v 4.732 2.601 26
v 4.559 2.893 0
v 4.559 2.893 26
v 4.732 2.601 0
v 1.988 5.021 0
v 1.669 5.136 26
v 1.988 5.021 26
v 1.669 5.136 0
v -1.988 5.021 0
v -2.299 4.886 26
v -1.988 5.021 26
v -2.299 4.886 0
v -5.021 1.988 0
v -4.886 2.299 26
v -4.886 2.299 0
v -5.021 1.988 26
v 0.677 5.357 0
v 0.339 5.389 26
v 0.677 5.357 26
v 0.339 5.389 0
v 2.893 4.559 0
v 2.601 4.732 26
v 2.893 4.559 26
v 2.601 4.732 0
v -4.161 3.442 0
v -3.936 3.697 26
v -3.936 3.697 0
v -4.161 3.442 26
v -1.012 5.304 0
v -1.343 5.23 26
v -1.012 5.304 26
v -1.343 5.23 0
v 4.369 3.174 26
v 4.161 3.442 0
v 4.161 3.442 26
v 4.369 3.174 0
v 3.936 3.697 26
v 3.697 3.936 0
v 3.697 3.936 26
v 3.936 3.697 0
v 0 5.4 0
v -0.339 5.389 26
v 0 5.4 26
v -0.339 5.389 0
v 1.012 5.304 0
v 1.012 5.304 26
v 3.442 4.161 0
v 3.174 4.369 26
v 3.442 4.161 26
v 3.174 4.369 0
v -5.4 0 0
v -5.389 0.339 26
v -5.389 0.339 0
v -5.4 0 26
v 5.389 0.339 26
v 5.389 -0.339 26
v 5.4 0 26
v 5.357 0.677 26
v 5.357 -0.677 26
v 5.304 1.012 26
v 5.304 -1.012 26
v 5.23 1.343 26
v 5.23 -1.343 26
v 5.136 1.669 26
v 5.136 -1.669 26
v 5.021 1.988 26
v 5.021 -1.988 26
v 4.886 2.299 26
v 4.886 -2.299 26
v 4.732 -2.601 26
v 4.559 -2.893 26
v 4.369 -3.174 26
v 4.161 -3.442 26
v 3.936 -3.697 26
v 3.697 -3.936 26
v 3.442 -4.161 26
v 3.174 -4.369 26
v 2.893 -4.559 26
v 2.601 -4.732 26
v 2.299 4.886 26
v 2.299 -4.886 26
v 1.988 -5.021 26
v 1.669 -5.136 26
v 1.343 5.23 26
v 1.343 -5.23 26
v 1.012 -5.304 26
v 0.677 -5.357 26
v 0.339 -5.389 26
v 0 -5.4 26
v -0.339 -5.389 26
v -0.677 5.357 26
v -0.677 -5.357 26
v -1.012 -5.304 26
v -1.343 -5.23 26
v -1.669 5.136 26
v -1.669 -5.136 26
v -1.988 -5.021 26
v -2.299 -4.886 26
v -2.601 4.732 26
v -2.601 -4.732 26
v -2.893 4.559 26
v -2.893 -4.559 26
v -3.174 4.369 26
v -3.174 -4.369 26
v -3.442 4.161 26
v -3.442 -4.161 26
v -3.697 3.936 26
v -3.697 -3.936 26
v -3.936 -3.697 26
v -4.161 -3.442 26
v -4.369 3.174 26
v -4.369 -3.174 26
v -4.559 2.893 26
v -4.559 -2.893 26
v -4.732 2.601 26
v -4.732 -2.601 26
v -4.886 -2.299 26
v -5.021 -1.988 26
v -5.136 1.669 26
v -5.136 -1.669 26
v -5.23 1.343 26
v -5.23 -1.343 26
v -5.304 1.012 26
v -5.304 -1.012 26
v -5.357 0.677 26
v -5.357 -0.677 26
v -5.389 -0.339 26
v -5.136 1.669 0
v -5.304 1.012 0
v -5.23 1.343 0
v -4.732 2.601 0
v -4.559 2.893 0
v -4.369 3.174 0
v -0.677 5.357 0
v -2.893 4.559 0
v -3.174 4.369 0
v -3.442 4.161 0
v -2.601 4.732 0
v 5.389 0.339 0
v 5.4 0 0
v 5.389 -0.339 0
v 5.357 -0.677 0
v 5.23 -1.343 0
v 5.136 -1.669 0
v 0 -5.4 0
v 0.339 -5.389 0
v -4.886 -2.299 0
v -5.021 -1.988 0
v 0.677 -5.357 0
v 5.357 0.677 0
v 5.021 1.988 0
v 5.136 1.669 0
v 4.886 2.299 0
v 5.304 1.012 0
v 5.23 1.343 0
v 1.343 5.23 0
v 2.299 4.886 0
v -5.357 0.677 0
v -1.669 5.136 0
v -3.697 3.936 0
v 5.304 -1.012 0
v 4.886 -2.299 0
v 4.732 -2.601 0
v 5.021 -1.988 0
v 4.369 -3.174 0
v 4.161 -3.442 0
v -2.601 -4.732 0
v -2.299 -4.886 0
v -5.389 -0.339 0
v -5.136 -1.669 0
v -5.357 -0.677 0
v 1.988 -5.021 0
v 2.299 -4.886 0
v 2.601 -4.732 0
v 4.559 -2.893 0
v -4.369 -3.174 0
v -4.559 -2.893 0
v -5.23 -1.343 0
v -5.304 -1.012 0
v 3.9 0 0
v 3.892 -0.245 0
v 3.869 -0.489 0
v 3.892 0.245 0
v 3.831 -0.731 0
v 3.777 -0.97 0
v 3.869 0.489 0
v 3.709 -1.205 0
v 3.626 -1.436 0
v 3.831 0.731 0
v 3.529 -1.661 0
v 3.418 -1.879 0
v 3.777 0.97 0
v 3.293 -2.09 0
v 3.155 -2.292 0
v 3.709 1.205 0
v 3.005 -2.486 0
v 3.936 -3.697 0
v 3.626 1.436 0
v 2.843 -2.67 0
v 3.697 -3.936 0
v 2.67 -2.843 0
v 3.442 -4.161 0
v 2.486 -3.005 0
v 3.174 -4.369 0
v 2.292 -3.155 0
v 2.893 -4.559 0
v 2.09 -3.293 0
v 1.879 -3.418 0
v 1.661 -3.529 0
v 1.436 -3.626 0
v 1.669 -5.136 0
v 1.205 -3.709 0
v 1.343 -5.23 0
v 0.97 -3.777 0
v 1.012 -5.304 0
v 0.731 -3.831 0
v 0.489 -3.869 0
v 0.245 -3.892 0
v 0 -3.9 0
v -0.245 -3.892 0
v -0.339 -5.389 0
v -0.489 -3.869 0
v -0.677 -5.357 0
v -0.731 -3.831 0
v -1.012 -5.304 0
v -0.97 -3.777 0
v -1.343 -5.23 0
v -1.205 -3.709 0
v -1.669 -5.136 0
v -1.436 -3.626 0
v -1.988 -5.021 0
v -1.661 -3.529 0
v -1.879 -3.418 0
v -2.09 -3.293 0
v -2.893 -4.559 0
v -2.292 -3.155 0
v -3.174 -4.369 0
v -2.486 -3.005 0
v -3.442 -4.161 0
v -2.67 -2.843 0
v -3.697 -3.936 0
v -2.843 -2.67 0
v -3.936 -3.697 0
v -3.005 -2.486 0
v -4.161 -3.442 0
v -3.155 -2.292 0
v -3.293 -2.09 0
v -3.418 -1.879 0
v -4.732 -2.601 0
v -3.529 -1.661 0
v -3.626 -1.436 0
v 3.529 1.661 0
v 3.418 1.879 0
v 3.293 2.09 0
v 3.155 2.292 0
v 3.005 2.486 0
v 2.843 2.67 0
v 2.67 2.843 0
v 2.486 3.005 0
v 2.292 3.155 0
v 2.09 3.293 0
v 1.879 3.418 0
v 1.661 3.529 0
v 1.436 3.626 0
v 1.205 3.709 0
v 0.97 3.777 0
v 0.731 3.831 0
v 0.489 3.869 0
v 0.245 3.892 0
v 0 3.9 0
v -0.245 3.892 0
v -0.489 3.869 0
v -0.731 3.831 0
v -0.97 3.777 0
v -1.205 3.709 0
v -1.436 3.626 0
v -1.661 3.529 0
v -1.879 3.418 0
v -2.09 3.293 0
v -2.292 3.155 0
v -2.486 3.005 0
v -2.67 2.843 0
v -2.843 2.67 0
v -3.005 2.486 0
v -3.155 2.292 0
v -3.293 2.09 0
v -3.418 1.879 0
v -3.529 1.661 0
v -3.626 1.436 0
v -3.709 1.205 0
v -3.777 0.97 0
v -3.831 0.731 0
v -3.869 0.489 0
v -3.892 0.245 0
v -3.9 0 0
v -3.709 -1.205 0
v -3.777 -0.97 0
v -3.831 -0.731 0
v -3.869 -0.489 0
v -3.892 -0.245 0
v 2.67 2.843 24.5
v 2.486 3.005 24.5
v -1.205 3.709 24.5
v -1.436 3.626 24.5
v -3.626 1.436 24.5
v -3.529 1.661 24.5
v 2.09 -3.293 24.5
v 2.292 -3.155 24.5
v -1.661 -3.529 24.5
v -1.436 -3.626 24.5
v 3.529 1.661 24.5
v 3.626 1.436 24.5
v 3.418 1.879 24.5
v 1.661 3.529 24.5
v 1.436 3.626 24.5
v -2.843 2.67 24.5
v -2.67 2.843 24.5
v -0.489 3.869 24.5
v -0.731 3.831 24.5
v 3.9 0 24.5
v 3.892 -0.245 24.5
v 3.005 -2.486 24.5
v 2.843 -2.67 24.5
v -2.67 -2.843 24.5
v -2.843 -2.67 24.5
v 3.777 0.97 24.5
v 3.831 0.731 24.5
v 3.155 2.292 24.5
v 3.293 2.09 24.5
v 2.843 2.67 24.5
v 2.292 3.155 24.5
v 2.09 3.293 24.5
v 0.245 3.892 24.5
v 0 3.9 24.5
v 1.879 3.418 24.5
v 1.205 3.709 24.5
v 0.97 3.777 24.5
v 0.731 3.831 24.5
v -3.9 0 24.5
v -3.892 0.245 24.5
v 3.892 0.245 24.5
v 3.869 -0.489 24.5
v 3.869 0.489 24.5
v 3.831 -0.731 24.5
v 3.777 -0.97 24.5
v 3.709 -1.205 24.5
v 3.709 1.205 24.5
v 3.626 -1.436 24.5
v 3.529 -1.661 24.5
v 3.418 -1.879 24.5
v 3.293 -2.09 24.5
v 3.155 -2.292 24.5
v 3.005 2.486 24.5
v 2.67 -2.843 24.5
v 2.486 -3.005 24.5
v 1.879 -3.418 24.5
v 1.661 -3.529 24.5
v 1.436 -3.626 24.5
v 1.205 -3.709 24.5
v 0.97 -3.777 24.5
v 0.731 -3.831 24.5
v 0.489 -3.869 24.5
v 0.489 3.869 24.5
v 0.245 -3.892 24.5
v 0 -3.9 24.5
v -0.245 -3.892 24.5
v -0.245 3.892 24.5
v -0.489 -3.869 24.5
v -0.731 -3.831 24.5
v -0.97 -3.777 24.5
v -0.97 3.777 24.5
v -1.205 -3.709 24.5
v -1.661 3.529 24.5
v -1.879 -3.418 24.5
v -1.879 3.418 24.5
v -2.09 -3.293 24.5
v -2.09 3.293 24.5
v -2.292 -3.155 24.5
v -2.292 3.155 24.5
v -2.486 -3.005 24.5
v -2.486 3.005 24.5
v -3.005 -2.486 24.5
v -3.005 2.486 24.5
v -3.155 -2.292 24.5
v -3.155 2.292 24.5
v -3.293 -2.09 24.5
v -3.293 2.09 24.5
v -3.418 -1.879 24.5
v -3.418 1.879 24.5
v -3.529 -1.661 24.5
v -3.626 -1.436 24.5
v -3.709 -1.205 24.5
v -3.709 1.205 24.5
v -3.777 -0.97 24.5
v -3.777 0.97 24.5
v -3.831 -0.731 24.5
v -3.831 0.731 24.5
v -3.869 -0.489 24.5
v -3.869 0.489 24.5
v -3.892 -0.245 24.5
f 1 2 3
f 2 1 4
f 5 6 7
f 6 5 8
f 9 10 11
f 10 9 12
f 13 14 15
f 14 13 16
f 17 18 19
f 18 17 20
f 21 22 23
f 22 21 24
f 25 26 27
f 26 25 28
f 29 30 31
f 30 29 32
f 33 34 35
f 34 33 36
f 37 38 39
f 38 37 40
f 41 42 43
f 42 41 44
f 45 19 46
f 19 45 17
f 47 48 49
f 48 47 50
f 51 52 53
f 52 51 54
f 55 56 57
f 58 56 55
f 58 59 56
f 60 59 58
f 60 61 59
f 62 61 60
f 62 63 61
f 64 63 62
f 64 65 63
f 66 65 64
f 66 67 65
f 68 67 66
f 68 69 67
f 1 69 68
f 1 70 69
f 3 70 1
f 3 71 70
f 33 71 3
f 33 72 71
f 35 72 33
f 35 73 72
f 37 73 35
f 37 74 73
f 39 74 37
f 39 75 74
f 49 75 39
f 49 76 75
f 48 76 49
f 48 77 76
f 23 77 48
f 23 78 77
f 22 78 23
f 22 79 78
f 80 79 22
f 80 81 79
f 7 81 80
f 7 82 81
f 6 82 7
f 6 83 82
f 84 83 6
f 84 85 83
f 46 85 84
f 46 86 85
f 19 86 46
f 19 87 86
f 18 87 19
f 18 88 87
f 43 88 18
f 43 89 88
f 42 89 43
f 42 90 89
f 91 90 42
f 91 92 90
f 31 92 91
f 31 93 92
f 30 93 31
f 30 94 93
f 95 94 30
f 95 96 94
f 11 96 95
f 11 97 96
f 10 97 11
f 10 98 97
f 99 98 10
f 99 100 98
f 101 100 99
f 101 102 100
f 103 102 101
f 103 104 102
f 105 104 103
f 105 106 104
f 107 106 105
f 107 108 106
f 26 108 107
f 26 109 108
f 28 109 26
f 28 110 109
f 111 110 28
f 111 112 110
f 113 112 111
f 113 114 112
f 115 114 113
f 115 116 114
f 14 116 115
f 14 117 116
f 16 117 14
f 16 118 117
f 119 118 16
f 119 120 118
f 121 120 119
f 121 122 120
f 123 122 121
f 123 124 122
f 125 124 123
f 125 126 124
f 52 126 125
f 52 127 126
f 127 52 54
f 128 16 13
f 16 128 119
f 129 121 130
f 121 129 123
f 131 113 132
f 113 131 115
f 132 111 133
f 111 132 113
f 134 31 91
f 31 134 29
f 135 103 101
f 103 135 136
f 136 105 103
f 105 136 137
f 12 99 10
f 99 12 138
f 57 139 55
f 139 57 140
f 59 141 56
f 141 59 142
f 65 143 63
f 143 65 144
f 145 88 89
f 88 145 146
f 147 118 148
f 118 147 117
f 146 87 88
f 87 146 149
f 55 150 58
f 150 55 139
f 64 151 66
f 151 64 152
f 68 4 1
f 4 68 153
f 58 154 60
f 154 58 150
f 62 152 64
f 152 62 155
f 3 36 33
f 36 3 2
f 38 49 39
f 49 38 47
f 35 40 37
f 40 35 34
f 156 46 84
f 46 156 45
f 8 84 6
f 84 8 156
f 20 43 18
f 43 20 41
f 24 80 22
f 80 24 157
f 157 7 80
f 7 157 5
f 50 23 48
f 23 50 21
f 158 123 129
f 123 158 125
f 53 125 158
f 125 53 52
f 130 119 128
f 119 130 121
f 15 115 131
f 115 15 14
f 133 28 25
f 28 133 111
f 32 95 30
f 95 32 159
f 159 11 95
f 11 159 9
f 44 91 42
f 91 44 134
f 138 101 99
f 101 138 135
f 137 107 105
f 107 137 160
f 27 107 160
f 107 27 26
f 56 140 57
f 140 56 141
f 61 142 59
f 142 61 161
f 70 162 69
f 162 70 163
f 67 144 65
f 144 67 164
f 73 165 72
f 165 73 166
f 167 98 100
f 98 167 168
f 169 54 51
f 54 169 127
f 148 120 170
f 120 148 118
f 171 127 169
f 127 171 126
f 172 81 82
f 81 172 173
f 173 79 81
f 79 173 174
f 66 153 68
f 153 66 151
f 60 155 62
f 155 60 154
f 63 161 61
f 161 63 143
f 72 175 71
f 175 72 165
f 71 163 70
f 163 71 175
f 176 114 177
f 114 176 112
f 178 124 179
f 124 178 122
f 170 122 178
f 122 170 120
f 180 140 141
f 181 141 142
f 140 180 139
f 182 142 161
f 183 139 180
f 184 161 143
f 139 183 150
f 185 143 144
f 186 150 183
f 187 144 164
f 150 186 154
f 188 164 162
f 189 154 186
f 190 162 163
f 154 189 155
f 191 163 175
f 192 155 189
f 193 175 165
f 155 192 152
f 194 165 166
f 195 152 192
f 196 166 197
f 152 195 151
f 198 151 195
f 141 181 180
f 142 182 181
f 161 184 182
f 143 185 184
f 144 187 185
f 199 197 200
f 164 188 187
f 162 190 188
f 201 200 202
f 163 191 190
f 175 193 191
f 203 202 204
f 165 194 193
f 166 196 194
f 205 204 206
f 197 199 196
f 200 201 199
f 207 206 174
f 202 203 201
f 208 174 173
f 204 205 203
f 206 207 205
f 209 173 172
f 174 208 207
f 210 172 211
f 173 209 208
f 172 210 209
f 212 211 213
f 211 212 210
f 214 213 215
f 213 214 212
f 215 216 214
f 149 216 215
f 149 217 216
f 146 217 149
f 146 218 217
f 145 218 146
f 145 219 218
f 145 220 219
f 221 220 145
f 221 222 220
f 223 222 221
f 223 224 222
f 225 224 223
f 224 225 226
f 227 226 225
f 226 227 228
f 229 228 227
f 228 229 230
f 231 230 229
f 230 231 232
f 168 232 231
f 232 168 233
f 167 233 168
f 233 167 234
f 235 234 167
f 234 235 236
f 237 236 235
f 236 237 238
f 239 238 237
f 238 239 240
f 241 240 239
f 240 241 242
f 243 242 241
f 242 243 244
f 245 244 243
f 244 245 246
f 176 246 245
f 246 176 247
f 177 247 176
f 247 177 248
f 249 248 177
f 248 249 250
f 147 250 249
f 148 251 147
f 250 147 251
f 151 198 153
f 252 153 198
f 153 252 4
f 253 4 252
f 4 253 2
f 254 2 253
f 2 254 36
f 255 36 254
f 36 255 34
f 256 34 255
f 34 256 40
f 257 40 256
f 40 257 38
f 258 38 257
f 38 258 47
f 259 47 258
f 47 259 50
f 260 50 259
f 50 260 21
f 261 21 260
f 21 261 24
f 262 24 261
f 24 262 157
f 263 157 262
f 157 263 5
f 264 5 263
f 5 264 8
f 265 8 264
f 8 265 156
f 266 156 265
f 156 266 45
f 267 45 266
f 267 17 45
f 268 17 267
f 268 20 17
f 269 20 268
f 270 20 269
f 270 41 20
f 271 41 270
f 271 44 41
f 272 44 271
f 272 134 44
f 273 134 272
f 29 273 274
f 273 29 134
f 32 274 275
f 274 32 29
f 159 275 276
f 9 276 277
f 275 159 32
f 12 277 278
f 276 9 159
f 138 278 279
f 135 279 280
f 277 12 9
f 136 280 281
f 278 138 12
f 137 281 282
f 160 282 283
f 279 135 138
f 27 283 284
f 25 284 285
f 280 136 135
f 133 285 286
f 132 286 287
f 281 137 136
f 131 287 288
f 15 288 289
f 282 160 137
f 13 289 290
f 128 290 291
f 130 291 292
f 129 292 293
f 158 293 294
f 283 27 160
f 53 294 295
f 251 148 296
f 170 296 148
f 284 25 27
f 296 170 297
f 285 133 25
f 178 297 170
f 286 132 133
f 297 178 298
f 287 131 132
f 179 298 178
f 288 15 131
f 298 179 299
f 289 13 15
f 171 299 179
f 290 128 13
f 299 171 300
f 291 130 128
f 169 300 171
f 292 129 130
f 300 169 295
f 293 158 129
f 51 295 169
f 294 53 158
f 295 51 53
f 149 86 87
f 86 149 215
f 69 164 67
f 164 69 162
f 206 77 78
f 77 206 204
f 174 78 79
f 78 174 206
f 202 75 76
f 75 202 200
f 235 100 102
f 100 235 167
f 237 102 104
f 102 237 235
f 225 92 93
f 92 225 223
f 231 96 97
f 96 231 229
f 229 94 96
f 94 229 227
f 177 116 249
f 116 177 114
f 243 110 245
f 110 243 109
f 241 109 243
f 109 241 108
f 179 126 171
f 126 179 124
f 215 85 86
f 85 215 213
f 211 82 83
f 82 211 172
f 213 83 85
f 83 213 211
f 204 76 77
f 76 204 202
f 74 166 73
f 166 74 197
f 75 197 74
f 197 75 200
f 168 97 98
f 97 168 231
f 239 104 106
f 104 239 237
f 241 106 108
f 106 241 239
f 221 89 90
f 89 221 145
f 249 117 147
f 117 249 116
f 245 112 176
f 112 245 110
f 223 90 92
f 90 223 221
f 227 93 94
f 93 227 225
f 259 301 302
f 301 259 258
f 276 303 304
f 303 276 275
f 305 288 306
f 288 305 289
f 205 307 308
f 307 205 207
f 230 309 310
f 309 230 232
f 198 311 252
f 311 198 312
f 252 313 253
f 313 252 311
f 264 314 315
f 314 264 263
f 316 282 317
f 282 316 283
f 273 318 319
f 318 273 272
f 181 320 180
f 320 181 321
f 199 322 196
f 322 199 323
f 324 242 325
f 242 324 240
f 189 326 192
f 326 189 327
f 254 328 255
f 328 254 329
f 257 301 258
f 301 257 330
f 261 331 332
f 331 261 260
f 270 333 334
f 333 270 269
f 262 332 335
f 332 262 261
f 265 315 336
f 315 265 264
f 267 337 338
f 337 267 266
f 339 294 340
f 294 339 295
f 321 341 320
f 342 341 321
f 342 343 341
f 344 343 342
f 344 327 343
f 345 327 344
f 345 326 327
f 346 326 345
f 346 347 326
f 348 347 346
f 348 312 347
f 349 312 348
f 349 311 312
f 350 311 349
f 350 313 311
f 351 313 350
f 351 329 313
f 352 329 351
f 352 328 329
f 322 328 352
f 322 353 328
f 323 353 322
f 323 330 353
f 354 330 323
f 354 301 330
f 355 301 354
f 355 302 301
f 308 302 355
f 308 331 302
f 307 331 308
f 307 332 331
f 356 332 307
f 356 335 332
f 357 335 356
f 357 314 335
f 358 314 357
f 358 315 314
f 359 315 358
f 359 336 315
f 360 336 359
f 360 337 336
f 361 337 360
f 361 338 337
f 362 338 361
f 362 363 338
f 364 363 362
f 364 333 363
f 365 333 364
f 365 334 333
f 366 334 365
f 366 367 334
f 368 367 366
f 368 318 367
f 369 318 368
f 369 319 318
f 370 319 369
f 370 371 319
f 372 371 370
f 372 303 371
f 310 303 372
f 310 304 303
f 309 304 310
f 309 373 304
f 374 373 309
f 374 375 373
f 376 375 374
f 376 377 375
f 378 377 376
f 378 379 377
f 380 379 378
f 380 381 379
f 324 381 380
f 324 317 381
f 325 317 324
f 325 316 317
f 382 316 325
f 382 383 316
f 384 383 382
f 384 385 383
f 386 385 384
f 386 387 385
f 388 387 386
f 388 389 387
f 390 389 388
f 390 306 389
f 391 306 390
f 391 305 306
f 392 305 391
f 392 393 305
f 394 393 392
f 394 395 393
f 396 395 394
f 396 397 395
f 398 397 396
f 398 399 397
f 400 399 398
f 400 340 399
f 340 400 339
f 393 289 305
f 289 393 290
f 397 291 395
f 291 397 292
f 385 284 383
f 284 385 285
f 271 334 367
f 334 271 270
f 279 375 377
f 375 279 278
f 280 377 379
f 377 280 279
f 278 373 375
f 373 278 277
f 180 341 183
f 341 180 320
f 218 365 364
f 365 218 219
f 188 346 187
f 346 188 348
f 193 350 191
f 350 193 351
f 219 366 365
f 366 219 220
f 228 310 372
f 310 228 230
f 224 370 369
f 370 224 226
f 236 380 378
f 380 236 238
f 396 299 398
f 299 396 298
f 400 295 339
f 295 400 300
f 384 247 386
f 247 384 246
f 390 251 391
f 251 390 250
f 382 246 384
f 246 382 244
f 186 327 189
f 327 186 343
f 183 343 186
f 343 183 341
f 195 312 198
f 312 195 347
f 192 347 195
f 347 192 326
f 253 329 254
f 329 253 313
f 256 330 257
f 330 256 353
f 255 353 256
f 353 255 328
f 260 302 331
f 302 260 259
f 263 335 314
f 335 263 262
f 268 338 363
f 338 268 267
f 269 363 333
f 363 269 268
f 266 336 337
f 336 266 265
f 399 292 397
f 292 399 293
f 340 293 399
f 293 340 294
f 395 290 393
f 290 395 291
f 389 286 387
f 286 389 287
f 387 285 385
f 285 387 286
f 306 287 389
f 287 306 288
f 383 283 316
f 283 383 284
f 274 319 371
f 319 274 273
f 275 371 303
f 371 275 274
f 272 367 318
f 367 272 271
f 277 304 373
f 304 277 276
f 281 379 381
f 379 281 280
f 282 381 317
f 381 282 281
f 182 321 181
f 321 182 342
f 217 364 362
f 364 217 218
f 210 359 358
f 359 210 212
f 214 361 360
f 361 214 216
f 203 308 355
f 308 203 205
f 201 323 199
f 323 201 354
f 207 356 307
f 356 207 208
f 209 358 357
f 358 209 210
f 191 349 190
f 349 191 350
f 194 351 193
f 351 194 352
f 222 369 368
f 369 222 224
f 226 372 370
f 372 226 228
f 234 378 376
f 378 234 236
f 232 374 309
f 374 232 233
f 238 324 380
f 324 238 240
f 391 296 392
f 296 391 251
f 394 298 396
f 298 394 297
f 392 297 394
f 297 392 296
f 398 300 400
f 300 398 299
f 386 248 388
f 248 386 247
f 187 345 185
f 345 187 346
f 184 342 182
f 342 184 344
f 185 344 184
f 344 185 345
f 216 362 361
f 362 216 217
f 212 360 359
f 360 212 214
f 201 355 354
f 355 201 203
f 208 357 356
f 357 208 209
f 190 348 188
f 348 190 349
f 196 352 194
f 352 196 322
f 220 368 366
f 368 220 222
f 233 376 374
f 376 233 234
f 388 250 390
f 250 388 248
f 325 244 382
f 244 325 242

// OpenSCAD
// file: ../motor_housing.scad
/*
Title:          motor_housing.scad
Description:    encapsulation for the motors
Authors:        Pau Roura (@proura)
Date:           20180610
Version:        0.1
Notes:

    Default values for module motor_housing

    module motor_housing(
        w_walls=1.5,        //with of the walls
        d_motor=7.2,        //motor diameter
        h_motor_body=26,    //motor housing height
        d_motor_shaft=1     //motor shaft diameter
    )
*/

module motor_housing(w_walls=1.5, d_motor=7.2, h_motor_body=26, d_motor_shaft=1){
    difference() {
                            cylinder(d=d_motor+w_walls*2, h=h_motor_body); 
        translate([0,0,-1]) cylinder(d=d_motor, h=h_motor_body-w_walls+1);
        translate([0,0,1])  cylinder(d=d_motor_shaft, h=h_motor_body);
    }     
}

motor_housing();
// main file
/*
Title:          motor_housing.scad for generate STL file
Description:    encapsulation for the motors
Authors:        Pau Roura (@proura)
Date:           20180610
Version:        0.1
Notes:

    Default values for module motor_housing

    module motor_housing(
        w_walls=1.5,        //with of the walls
        d_motor=7.2,        //motor diameter
        h_motor_body=26,    //motor housing height
        d_motor_shaft=1     //motor shaft diameter
    )
*/

use <../motor_housing.scad>;
$fn = 100;
motor_housing(w_walls=1.5, d_motor=7.8, h_motor_body=26, d_motor_shaft=0);
